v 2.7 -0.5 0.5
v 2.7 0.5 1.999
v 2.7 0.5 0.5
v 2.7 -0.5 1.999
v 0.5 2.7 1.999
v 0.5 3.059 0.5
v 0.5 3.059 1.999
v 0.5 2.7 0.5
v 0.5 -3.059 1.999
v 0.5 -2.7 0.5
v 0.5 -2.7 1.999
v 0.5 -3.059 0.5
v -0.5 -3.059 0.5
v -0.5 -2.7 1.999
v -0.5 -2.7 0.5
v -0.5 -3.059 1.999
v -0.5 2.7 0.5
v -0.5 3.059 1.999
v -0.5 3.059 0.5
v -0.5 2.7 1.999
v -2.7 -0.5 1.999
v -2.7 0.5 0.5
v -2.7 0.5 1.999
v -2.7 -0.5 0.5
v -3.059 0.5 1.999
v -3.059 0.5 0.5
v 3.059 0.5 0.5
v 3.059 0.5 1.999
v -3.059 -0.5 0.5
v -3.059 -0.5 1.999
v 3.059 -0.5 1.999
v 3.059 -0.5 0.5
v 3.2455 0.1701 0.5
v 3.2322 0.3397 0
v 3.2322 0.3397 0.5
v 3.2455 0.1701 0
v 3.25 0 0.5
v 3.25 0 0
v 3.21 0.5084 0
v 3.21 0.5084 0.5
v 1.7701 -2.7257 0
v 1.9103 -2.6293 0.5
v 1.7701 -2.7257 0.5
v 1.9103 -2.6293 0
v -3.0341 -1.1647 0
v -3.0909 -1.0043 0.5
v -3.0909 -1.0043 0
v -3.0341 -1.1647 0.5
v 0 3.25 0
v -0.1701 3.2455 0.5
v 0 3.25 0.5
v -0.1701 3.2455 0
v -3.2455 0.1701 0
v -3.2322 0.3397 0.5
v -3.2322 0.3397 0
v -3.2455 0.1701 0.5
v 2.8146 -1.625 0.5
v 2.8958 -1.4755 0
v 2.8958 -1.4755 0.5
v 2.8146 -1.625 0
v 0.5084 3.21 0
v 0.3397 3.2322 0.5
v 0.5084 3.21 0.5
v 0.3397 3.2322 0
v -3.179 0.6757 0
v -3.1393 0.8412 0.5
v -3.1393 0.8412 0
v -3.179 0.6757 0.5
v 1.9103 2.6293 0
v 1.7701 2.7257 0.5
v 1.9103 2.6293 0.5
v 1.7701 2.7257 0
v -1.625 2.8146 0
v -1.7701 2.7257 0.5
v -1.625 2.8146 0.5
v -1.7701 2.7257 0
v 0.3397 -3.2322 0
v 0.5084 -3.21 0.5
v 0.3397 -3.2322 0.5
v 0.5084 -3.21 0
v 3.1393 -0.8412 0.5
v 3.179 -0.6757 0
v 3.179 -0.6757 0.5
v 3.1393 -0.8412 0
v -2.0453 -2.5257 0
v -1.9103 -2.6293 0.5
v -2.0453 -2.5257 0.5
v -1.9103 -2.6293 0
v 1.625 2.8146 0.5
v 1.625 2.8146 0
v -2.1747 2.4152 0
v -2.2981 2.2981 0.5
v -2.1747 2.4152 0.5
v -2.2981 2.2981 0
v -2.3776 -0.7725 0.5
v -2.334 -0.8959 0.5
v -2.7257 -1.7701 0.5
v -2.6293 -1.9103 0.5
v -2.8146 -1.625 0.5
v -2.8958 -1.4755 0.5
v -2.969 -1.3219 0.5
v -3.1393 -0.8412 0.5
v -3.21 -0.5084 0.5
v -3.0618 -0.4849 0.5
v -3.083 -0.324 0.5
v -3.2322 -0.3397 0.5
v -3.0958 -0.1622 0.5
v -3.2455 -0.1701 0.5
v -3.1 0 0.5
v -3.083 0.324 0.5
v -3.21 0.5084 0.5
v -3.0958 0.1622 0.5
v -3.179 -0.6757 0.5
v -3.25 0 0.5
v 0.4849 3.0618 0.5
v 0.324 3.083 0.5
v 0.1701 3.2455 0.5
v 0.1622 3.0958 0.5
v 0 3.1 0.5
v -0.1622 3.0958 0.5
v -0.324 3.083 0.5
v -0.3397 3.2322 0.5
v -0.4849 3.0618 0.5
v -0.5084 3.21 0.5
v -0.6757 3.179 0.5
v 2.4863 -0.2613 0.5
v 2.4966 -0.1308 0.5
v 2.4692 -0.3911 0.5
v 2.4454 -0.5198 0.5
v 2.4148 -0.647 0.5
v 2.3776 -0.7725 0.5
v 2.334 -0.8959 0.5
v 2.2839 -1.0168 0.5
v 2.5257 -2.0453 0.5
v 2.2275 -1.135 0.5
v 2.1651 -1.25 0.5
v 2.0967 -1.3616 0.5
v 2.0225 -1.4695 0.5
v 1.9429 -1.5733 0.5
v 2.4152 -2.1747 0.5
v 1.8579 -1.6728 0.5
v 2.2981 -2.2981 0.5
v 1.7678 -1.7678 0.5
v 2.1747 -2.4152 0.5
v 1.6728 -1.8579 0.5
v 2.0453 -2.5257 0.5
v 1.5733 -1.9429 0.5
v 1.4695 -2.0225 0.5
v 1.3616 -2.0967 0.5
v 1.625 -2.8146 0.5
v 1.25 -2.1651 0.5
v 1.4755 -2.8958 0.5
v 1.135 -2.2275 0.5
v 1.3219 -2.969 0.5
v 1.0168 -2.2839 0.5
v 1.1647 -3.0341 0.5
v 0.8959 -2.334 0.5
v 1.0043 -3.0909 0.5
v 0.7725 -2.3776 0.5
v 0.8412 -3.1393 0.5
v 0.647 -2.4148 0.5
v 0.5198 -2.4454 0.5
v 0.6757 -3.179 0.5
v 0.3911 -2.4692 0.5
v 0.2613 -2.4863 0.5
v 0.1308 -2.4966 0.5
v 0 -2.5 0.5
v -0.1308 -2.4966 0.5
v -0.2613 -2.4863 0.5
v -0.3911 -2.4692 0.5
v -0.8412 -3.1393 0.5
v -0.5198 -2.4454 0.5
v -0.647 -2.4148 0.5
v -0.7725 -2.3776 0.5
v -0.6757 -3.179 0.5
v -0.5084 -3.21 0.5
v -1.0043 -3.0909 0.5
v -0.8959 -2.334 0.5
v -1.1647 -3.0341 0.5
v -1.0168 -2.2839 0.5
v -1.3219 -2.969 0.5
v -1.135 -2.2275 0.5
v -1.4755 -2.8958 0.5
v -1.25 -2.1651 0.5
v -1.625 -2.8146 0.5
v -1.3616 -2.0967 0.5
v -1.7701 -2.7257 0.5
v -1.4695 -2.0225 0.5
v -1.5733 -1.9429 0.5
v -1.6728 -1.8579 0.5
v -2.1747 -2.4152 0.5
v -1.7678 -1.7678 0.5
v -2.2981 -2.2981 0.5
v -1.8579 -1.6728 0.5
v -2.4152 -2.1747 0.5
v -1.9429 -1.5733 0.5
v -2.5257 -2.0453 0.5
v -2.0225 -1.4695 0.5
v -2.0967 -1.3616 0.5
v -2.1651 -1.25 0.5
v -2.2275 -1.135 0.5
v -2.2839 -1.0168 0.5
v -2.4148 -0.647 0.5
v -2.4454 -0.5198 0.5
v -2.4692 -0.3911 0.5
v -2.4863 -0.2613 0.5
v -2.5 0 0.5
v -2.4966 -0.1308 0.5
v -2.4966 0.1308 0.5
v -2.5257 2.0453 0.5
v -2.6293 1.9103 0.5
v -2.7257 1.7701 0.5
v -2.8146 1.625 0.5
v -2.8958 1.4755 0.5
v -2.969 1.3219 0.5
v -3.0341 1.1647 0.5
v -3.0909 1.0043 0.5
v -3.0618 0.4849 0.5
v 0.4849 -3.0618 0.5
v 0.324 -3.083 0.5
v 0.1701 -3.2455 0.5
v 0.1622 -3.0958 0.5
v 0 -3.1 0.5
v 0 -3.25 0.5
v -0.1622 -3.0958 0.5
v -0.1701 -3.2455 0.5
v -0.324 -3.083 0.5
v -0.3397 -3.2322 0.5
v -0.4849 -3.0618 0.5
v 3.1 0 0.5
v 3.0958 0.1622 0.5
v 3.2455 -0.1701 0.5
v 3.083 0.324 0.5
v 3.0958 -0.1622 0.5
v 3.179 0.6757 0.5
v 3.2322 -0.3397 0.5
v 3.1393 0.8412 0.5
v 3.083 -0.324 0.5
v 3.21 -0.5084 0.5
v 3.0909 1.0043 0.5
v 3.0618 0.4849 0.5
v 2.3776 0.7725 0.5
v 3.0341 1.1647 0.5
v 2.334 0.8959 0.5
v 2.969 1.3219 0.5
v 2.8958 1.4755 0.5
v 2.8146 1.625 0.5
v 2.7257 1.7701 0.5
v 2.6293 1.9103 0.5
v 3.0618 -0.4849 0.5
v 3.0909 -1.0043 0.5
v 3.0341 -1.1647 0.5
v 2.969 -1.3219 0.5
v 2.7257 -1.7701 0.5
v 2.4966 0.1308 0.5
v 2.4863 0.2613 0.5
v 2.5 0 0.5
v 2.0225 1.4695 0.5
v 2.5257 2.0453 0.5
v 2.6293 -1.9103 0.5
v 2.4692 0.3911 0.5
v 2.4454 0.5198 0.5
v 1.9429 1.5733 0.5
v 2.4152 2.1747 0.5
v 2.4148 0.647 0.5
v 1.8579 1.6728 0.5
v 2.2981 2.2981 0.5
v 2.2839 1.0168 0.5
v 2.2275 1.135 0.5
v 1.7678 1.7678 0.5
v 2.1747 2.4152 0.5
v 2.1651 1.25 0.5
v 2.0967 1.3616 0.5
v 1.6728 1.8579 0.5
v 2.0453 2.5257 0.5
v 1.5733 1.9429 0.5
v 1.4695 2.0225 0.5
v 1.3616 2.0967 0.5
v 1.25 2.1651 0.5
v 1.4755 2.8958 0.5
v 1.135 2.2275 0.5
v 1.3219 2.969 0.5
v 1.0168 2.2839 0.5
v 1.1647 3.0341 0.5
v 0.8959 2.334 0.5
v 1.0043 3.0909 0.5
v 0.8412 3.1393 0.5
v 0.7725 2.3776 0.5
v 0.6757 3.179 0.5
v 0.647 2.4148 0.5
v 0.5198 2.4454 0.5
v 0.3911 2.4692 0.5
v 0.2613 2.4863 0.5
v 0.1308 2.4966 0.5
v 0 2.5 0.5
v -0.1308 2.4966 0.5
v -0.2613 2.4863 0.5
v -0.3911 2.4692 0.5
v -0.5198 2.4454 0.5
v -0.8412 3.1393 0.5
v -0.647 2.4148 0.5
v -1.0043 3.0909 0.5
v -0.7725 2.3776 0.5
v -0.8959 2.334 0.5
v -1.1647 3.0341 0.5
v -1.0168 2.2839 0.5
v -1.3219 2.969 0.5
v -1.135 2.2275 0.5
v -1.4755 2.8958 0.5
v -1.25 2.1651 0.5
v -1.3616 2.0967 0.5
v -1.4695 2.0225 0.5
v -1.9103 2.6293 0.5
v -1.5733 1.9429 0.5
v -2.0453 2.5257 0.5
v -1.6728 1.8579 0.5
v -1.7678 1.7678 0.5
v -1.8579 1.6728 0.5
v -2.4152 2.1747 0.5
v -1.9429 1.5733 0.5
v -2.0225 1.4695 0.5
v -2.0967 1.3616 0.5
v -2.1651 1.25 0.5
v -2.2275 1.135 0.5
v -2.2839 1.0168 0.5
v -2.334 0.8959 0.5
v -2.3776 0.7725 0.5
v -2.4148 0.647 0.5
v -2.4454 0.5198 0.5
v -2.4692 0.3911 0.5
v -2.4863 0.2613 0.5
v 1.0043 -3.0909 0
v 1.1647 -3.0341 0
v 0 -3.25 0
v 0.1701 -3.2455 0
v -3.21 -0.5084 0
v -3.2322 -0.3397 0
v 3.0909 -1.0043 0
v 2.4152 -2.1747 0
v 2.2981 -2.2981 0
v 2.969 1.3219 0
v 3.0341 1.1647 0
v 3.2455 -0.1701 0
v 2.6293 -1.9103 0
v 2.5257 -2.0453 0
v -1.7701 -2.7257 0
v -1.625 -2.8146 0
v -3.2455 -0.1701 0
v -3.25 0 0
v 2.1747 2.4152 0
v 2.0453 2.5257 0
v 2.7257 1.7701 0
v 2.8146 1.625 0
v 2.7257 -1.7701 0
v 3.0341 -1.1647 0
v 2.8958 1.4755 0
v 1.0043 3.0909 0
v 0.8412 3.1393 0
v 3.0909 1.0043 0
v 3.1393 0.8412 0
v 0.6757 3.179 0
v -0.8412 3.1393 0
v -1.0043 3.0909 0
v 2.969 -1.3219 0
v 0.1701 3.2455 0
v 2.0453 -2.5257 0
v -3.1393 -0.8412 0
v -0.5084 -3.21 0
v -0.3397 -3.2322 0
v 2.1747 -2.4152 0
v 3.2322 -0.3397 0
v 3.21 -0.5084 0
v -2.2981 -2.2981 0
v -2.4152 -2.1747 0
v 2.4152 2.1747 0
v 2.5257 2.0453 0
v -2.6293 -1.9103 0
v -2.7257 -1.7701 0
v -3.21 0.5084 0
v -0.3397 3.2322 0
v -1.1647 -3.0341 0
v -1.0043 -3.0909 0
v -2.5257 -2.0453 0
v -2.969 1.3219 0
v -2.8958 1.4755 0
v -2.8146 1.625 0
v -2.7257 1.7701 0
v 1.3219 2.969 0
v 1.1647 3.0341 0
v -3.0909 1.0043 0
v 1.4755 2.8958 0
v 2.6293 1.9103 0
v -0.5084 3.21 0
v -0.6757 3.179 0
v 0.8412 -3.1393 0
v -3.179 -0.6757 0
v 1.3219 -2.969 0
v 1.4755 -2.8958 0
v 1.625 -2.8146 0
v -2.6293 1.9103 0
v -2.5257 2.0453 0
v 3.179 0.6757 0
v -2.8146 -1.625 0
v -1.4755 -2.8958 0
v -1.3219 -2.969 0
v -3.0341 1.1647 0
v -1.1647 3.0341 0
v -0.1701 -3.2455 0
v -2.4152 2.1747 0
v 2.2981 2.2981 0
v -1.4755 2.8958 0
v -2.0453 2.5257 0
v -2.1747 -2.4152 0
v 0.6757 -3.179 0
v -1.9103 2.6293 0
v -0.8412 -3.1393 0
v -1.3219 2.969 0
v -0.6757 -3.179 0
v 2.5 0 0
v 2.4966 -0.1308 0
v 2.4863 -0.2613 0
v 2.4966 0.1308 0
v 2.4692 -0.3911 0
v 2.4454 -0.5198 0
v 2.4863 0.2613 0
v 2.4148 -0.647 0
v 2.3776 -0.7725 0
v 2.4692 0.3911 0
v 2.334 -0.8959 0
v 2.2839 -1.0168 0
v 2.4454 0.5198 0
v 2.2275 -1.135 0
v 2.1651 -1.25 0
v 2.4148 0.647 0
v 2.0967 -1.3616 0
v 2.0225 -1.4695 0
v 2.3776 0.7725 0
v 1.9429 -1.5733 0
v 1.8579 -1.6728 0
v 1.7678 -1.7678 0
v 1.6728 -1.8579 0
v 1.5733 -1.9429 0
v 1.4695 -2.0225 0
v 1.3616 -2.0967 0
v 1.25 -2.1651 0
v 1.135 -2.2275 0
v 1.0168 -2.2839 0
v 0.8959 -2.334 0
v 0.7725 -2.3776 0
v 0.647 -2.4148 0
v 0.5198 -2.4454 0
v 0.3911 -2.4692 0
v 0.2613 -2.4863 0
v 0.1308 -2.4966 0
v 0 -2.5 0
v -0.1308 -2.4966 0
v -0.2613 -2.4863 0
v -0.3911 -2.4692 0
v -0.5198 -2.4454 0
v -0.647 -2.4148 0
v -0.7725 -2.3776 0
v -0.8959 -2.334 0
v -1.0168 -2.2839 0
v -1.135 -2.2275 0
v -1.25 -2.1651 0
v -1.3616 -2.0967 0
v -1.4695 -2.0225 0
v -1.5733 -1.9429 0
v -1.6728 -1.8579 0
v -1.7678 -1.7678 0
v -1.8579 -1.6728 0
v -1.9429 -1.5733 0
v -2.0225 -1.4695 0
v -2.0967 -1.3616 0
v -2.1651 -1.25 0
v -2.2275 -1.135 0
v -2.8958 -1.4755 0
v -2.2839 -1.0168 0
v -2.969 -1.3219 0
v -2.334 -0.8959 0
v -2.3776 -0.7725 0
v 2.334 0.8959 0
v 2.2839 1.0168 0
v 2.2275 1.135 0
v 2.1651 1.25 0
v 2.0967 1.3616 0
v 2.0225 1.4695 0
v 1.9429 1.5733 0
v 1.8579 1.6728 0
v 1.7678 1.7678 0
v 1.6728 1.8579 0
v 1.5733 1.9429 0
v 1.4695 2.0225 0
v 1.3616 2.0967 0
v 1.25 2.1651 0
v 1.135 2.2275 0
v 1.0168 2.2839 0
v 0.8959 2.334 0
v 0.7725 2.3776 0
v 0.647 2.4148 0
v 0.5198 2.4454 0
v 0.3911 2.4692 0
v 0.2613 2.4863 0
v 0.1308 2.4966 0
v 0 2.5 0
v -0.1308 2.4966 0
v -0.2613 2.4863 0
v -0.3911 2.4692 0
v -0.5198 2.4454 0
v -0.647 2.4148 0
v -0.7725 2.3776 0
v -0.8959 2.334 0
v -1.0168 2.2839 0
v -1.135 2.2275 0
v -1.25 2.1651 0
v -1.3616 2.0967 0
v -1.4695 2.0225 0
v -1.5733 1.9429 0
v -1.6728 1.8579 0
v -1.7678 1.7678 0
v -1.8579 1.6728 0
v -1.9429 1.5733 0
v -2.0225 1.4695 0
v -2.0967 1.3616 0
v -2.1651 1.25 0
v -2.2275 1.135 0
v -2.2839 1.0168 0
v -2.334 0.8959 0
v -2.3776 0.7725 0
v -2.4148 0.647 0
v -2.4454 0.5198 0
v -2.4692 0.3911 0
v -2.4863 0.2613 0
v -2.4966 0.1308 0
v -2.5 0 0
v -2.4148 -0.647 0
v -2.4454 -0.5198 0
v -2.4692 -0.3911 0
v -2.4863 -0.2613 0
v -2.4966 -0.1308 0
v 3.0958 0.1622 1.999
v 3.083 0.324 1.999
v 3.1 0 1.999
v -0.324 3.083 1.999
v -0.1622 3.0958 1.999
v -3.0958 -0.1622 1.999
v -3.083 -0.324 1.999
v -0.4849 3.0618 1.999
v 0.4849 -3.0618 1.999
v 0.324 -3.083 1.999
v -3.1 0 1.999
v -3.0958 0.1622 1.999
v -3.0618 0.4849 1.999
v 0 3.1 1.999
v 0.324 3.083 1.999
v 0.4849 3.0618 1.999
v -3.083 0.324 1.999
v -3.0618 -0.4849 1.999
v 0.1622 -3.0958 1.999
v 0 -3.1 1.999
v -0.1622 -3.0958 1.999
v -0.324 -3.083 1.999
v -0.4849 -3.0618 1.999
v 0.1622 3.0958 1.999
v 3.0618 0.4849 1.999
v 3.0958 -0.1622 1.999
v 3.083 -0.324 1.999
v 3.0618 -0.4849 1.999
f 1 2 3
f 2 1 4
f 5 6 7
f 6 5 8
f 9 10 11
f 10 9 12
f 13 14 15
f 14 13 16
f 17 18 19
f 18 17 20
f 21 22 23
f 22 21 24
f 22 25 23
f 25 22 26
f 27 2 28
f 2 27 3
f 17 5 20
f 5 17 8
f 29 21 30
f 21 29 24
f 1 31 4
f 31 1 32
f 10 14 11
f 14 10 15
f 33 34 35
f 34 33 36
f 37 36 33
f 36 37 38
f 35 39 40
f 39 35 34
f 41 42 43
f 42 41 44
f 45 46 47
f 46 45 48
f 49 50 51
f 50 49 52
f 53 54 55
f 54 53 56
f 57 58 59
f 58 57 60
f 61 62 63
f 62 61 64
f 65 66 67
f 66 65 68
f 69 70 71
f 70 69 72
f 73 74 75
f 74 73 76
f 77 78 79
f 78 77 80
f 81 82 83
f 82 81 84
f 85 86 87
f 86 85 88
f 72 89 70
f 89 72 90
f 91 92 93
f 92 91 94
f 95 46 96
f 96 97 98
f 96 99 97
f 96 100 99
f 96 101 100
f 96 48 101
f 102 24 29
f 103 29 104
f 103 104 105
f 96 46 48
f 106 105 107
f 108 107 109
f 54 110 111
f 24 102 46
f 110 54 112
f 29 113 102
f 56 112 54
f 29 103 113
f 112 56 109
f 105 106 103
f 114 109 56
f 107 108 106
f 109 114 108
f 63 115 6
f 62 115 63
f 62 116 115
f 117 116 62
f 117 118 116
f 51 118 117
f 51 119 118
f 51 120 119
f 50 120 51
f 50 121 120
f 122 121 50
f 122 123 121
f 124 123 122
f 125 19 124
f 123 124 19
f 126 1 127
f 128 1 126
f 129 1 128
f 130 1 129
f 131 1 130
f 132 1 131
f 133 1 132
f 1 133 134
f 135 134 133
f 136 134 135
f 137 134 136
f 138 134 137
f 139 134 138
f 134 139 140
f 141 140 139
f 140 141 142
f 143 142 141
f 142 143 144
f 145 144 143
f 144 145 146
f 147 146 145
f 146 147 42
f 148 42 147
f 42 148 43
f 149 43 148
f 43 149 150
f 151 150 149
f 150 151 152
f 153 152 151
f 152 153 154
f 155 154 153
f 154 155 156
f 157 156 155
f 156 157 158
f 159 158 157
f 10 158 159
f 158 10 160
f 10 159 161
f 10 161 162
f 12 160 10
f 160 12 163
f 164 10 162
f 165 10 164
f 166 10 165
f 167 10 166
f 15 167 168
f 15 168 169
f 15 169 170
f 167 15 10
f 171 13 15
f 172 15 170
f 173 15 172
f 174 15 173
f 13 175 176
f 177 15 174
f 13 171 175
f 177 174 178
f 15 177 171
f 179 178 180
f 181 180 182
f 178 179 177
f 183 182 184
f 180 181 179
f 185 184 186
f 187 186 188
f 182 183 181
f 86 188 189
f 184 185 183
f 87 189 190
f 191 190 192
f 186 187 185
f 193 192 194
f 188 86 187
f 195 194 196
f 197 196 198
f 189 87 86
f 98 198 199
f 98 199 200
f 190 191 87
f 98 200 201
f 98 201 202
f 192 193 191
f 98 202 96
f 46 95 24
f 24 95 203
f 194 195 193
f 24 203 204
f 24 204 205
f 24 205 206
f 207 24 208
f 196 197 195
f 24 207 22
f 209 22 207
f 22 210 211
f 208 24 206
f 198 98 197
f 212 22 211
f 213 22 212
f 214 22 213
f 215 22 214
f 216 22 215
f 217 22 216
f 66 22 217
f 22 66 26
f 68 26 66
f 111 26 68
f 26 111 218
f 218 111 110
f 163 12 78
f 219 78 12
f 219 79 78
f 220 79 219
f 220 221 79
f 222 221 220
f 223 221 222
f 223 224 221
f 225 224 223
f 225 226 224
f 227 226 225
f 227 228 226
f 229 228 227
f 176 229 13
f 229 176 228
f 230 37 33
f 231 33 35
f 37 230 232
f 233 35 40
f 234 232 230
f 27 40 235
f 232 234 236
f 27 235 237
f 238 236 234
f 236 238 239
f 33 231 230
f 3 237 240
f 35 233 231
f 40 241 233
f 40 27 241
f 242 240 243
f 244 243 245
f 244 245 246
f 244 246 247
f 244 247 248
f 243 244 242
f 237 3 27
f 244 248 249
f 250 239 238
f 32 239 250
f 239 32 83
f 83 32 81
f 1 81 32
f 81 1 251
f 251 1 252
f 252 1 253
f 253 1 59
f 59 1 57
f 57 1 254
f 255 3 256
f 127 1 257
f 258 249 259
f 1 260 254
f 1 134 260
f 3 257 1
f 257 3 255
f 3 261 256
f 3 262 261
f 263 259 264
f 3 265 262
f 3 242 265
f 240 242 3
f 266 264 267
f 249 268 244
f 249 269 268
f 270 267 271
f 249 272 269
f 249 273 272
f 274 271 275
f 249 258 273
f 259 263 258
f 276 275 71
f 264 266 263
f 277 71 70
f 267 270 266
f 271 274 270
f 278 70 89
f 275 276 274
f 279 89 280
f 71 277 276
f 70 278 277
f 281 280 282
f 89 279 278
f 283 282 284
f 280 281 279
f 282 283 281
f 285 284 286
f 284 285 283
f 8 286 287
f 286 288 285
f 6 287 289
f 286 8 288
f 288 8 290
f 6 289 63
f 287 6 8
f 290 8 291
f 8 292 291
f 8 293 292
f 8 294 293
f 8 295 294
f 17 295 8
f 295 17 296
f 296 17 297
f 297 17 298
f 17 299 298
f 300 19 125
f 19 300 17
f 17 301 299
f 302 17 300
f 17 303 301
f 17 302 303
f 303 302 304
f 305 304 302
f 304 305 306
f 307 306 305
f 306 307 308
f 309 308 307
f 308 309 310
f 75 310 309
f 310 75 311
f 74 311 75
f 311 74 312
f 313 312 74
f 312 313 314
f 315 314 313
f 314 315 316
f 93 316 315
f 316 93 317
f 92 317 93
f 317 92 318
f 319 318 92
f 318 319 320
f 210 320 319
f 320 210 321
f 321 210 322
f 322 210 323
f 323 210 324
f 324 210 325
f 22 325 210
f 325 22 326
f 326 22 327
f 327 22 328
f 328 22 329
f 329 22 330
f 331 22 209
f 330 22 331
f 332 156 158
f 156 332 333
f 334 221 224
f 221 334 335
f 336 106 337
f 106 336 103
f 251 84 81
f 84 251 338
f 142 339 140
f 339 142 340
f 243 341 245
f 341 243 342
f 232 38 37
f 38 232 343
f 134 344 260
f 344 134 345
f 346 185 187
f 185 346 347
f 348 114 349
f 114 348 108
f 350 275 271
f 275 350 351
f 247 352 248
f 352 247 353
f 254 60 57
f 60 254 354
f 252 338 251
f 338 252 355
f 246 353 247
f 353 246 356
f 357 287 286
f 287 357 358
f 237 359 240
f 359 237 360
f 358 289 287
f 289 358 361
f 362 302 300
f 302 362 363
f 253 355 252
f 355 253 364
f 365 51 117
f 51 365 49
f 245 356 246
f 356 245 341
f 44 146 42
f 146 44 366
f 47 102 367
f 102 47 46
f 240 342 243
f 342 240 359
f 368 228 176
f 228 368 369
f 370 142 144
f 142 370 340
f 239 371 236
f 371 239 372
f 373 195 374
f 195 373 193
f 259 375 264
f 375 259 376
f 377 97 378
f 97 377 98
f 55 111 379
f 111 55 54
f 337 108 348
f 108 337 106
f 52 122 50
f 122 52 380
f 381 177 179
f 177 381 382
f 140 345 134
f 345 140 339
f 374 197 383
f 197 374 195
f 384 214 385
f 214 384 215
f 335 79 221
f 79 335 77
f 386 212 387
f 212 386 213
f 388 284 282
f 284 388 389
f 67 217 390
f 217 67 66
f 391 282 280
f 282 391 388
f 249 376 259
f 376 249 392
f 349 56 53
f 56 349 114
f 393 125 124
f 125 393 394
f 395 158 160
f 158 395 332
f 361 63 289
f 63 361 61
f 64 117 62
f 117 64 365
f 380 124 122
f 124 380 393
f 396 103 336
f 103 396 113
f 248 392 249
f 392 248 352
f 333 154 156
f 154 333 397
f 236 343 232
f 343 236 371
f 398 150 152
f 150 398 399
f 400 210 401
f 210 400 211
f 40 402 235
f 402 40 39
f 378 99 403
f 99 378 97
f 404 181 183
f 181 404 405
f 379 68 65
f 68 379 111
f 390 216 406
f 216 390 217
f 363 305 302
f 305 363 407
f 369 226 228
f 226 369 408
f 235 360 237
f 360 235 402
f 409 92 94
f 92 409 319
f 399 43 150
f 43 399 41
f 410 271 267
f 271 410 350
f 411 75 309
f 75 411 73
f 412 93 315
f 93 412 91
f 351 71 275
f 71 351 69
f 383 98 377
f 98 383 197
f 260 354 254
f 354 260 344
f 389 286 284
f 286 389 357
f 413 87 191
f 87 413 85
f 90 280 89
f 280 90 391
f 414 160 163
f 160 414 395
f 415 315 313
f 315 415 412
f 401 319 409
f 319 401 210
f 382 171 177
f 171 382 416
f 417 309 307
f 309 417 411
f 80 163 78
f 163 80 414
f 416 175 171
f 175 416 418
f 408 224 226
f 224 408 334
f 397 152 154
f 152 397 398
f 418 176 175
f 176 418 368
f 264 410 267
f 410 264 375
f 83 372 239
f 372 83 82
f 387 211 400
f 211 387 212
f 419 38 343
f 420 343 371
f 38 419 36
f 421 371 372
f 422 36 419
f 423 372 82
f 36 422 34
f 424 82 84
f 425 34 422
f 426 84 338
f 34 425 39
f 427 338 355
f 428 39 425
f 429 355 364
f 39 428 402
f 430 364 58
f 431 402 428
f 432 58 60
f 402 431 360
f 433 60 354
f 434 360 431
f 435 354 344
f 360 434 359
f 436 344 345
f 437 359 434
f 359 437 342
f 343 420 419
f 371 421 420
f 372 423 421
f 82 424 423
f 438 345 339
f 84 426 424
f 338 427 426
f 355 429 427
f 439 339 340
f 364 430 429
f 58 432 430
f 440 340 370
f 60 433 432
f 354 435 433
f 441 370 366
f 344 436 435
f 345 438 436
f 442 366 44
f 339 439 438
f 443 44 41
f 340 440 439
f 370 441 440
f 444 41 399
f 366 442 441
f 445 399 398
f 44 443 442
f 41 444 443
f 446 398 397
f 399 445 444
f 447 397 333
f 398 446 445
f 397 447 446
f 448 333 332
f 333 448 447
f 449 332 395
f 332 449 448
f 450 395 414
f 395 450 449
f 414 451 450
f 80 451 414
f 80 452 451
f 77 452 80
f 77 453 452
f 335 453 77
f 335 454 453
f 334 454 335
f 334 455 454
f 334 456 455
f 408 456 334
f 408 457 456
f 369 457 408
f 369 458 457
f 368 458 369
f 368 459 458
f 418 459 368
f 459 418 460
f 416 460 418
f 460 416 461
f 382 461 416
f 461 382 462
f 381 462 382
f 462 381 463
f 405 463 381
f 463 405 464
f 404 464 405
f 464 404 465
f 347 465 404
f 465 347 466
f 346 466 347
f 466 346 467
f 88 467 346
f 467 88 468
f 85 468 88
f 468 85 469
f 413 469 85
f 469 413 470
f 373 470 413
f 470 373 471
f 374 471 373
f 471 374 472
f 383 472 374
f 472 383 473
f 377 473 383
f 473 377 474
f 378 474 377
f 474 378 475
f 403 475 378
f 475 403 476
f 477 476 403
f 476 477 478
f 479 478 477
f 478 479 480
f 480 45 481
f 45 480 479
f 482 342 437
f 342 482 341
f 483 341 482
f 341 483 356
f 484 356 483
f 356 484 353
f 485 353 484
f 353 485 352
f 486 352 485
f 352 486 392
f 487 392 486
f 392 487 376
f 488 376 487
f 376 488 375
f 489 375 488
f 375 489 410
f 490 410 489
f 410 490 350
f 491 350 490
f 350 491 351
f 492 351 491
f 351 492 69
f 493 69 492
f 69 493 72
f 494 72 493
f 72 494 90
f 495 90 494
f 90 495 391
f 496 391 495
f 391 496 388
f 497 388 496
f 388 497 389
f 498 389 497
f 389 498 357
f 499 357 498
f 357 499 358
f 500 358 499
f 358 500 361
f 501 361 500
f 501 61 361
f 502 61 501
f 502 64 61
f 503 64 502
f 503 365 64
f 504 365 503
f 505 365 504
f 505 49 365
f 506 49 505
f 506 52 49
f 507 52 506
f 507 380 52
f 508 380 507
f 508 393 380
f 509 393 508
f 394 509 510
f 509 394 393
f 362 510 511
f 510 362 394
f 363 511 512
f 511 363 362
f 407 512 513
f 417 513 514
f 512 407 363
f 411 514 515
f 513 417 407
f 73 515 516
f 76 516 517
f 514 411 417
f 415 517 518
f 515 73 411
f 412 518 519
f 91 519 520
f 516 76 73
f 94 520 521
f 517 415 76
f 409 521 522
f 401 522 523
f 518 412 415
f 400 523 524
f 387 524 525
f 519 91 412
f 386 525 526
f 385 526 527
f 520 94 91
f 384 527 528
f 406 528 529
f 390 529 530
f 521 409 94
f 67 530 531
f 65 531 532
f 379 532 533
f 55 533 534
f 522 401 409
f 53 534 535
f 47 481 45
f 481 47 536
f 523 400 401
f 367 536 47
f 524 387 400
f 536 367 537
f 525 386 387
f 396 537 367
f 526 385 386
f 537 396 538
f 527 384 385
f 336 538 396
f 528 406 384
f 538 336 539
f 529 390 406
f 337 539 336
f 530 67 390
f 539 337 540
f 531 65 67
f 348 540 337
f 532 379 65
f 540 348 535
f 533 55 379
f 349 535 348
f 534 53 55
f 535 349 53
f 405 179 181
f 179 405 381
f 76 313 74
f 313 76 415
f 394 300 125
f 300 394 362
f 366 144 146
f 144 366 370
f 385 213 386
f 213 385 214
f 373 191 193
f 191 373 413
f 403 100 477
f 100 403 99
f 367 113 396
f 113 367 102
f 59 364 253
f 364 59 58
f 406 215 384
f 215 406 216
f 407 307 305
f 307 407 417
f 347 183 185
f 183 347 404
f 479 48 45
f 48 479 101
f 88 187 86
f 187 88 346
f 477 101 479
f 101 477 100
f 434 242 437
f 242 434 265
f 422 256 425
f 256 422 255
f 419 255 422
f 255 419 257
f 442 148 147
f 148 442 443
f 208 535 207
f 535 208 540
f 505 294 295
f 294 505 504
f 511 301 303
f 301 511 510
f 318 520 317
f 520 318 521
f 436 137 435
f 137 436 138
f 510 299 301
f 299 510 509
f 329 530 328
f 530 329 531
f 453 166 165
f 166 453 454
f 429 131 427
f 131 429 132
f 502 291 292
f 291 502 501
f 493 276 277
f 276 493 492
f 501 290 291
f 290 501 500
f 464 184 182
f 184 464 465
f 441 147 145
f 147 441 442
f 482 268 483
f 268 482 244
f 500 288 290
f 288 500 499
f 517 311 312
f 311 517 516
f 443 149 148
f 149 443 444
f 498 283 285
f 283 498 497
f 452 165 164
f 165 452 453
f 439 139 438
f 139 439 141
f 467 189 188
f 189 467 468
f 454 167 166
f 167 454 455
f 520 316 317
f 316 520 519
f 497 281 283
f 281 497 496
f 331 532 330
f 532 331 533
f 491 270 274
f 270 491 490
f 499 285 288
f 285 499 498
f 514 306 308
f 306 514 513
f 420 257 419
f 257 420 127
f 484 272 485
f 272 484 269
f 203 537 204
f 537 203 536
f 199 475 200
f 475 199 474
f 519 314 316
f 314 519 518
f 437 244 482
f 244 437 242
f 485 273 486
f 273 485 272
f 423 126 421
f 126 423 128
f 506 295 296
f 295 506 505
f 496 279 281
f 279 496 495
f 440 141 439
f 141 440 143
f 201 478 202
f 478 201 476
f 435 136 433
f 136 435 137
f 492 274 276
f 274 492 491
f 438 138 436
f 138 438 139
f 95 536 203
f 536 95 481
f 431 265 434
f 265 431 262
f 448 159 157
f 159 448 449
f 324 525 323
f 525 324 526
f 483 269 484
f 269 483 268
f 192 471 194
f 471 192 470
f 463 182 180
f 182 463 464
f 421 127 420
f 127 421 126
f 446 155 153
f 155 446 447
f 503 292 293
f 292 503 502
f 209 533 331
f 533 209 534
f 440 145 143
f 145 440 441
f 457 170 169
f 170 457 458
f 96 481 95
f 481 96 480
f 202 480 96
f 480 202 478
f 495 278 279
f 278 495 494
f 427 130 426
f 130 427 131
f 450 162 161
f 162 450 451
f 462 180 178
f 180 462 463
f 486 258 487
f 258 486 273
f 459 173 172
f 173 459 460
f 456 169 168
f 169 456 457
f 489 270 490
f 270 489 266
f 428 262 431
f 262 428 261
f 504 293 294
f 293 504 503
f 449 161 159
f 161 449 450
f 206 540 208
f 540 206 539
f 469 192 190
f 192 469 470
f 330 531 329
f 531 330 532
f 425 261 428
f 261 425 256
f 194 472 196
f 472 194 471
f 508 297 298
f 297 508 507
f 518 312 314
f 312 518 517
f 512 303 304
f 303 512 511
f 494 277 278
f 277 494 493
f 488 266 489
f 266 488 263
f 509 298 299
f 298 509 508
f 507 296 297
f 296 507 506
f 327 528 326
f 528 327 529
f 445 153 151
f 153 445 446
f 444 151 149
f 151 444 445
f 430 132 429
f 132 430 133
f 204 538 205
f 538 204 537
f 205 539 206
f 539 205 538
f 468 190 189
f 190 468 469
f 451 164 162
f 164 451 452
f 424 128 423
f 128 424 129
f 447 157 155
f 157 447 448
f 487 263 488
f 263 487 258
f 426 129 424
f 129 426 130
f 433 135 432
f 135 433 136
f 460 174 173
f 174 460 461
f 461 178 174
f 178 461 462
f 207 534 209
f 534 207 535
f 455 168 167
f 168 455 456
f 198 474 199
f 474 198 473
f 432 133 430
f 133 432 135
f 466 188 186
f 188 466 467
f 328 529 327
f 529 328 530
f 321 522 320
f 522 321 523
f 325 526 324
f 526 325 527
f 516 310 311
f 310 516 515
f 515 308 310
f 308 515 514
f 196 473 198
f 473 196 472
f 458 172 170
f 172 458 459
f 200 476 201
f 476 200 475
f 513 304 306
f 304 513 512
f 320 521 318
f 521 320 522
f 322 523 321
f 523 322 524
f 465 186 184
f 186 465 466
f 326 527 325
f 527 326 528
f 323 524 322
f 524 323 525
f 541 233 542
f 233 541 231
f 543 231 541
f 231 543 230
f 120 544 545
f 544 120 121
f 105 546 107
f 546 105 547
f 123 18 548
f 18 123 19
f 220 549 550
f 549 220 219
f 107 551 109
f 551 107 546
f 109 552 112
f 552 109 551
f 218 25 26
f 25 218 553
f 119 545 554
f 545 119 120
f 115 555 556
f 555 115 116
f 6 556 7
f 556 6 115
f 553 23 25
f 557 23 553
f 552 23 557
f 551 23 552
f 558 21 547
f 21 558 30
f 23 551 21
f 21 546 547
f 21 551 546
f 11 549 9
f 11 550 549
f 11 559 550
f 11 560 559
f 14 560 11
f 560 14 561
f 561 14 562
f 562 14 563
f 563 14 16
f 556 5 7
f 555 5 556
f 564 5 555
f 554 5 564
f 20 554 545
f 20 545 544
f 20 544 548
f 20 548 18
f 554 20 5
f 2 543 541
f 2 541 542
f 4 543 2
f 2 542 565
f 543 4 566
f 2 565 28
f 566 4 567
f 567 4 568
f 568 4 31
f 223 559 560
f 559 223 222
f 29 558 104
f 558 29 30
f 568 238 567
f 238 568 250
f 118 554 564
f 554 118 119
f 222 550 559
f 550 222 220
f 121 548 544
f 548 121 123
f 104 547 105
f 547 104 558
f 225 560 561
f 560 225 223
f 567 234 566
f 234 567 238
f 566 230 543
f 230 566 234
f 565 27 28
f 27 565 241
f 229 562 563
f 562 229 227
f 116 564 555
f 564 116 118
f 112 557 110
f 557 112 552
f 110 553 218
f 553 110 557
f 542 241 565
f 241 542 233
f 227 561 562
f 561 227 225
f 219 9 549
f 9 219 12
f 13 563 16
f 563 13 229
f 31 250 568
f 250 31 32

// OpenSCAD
$fn = 0;    //número de fragmentos
$fa = 3;    //ángulo mínimo
$fs = 0.1;  //tamaño mínimo
offset = 0.001;
difference(){
    cylinder(h = 0.5, d = 6.5);
    translate([0,0, - offset])
    cylinder(h = 1.5, d = 5);
    }

difference(){
    difference(){
        translate([0,0,0.5 - offset])
        cylinder(h = 1.5, d = 6.2);

        translate([0,0,0.5 - offset * 2])
        cylinder(h = 1.6, d = 5.4);

        }


    union(){
        translate([1.6, 0, 0])
        cube([2.2, 7, 5], center = true);
        translate([-1.6, 0, 0])
        cube([2.2, 7, 5], center = true);
        translate([0, 1.6, 0])
        rotate([0,0,90])
        cube([2.2, 7, 5], center = true);
        translate([0, -1.6, 0])
        rotate([0,0,90])
        cube([2.2, 7, 5], center = true);

        }
}
/*
difference(){
    union(){
        cylinder(h = 0.8, d = 14.7);

        translate([0,0,0.8])
        cylinder(h = 4.2, d = 6.1);

        translate([0,0,5])
        cylinder(h = 0.4, d1 = 6.6, d2 = 6.1);
    
    
    }

    translate([0,0,3.5])
    cube(5, center = true);
    }
    */
